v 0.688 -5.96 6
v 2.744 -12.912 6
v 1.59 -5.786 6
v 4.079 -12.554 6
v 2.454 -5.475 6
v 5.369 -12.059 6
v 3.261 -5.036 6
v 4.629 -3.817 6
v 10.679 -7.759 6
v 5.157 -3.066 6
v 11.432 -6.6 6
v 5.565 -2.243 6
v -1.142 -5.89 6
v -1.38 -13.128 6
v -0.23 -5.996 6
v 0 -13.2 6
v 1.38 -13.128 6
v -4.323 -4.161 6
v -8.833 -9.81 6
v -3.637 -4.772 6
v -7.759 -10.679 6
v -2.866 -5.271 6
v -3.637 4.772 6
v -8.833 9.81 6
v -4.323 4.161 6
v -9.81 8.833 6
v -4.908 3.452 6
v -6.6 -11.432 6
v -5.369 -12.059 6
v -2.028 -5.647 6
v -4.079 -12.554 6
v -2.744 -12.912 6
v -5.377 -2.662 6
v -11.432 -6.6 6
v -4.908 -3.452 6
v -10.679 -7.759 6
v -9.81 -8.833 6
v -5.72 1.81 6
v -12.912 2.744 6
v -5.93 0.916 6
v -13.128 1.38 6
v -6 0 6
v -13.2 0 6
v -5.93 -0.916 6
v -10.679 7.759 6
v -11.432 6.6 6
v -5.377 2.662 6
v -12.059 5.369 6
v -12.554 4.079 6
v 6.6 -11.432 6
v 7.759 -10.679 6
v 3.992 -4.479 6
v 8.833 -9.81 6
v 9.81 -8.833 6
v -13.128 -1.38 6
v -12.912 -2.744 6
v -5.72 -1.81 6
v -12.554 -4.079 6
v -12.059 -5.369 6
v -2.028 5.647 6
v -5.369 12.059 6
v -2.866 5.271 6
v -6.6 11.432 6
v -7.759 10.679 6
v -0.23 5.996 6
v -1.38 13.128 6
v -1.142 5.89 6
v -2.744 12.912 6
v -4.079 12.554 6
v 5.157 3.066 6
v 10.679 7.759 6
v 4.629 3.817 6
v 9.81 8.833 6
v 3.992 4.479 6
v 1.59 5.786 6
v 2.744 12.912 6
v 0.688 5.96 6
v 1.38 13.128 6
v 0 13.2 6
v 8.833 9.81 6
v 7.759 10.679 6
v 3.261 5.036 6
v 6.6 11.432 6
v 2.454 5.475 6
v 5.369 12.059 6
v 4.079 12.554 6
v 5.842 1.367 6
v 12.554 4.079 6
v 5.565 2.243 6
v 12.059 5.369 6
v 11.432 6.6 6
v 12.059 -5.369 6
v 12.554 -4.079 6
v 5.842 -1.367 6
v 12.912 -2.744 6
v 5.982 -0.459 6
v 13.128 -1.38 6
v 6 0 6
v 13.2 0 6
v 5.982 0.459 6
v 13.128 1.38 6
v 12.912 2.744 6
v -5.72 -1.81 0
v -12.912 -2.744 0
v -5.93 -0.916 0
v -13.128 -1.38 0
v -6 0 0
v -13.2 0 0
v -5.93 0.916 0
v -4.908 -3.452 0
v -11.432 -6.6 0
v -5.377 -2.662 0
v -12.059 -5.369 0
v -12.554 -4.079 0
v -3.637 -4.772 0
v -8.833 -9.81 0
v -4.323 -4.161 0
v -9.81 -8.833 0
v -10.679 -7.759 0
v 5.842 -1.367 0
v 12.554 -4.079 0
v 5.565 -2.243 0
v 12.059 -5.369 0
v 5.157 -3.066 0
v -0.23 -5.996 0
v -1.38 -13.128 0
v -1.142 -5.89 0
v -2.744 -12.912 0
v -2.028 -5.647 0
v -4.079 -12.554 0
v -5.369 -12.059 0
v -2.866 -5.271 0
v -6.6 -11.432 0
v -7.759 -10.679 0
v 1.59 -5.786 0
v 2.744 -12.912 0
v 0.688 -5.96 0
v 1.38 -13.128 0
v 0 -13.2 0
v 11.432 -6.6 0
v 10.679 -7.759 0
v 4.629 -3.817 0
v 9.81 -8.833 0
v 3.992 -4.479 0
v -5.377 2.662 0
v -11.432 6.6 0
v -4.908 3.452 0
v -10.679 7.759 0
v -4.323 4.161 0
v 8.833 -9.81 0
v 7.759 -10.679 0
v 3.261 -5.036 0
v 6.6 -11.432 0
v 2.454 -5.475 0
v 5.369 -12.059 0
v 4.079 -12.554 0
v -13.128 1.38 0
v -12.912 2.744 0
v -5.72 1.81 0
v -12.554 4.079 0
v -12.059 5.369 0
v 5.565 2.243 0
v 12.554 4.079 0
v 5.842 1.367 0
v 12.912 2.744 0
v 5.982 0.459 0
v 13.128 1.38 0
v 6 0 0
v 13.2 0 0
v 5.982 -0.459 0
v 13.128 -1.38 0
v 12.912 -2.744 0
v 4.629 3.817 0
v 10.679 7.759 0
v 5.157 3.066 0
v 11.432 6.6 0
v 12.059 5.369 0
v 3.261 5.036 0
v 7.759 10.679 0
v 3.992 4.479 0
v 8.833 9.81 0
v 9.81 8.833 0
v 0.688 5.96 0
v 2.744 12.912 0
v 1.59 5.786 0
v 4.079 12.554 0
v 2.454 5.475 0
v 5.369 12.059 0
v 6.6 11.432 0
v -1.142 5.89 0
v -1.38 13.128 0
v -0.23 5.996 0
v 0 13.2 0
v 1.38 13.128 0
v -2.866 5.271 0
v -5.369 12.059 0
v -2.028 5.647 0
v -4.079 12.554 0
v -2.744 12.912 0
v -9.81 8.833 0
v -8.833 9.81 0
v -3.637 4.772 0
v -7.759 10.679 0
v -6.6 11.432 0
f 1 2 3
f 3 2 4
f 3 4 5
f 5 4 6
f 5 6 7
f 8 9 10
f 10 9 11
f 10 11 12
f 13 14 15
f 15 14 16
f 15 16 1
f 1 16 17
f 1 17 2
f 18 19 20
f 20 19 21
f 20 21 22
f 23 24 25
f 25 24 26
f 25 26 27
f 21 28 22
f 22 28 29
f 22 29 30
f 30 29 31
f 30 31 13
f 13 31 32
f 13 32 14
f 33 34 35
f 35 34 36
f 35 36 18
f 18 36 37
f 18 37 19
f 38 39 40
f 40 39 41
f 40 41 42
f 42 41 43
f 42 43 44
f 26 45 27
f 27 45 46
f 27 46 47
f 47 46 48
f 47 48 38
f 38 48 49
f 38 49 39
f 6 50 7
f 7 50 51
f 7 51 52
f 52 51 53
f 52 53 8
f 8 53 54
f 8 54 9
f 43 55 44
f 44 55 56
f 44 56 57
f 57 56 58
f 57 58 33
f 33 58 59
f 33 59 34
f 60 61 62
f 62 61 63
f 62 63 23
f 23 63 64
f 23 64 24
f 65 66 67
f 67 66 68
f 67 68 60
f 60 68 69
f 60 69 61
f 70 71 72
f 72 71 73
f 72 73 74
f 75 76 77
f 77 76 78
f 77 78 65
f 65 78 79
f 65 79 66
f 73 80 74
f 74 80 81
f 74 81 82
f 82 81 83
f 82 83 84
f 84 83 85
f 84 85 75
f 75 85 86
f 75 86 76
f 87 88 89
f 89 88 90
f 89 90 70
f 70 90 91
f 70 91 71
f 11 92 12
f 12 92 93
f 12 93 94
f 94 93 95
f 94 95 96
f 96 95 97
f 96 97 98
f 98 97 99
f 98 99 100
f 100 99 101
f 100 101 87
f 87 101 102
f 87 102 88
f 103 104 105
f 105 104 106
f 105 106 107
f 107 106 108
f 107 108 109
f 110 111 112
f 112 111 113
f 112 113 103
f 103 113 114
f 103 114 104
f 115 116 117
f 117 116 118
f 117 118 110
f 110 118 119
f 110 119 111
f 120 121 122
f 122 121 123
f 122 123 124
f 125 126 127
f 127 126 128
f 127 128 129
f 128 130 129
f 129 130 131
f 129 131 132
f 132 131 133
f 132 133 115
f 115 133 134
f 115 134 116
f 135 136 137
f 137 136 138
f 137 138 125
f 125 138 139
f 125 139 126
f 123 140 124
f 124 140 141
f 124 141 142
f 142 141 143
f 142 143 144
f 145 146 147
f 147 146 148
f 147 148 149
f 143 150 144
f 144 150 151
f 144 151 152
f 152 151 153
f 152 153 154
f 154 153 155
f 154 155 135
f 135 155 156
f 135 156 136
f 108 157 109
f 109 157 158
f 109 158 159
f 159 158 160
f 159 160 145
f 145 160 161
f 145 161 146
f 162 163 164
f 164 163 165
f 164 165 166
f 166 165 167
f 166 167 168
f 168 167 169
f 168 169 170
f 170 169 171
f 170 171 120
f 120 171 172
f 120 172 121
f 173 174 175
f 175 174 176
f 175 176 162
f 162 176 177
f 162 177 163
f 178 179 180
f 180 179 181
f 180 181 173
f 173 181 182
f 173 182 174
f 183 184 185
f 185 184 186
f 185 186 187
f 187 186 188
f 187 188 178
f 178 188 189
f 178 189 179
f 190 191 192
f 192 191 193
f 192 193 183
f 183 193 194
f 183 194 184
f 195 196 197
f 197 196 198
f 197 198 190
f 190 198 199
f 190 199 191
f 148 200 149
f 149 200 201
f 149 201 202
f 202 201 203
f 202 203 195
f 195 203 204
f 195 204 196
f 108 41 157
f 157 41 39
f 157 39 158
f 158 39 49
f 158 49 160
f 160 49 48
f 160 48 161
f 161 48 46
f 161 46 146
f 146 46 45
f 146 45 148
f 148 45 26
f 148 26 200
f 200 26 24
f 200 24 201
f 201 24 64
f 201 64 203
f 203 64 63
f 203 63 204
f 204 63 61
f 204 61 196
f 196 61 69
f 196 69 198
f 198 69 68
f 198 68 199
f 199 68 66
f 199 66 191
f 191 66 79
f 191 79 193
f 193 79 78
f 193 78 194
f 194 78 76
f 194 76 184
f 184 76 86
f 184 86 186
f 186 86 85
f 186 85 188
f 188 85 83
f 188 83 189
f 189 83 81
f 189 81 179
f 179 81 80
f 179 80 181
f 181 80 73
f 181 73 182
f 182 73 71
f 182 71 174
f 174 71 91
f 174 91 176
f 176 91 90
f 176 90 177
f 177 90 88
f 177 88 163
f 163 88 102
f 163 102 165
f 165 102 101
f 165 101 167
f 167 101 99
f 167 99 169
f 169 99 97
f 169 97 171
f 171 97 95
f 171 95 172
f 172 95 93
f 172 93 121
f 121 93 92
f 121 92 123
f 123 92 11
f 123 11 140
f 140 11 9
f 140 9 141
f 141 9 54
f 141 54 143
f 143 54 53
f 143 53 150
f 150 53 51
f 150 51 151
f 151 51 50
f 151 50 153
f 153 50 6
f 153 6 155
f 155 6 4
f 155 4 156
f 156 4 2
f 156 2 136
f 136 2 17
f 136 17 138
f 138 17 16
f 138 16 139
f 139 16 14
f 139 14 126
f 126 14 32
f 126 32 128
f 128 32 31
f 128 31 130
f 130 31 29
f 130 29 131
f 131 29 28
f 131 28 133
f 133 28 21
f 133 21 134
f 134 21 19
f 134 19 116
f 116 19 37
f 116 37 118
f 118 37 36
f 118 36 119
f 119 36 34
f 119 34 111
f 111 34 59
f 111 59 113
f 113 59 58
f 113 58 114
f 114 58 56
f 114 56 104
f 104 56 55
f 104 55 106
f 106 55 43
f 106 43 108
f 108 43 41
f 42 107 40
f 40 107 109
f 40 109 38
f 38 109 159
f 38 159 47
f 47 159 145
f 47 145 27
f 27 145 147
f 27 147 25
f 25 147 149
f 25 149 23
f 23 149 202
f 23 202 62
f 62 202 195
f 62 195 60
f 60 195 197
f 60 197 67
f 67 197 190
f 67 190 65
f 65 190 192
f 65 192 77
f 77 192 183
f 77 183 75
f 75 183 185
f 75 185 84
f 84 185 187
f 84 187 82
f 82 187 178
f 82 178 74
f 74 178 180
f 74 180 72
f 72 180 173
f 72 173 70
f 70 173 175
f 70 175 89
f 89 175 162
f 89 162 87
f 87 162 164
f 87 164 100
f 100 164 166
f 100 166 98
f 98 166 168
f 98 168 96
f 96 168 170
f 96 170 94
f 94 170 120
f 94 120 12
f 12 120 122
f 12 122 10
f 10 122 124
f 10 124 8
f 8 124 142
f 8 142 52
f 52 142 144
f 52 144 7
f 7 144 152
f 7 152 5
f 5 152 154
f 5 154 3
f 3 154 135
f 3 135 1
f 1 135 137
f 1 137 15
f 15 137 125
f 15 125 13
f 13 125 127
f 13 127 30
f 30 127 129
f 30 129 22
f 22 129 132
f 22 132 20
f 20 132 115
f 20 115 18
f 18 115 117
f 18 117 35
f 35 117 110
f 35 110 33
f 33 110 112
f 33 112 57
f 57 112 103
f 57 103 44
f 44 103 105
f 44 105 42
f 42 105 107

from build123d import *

# Parameters (mm, degrees)
SKETCH1_R           = 13.2
SKETCH1_R_2         = 6
BOSS_EXTRUDE1_DEPTH = 6
CUT_EXTRUDE1_DEPTH  = 2.54
SKETCH3_R           = 13.2
SKETCH3_R_2         = 6
BOSS_EXTRUDE2_DEPTH = 6


with BuildPart() as part:
    # Sketch1 → Boss-Extrude1 (new body)
    with BuildSketch(Plane.XY):
        Circle(SKETCH1_R)
        Circle(SKETCH1_R_2, mode=Mode.SUBTRACT)
    extrude(amount=BOSS_EXTRUDE1_DEPTH)

    # Sketch2 → Cut-Extrude1 (cut)
    with BuildSketch(Plane.XY.offset(6)):
        with BuildLine():
            ThreePointArc((-2.819851171, 12.895287487), (0, 13.2), (2.819851171, 12.895287487))
            ThreePointArc((2.819851171, 12.895287487), (1.826256171, 11.910750525), (1.819851171, 10.512))
            ThreePointArc((1.819851171, 10.512), (0, 10.668364555), (-1.819851171, 10.512))
            ThreePointArc((-1.819851171, 10.512), (-1.826256171, 11.910750525), (-2.819851171, 12.895287487))
        make_face()
    extrude(amount=-CUT_EXTRUDE1_DEPTH, mode=Mode.SUBTRACT)

    # Sketch3 → Boss-Extrude2 (add)
    with BuildSketch(Plane.XY):
        Circle(SKETCH3_R)
        Circle(SKETCH3_R_2, mode=Mode.SUBTRACT)
    extrude(amount=BOSS_EXTRUDE2_DEPTH)


solid = part.part
